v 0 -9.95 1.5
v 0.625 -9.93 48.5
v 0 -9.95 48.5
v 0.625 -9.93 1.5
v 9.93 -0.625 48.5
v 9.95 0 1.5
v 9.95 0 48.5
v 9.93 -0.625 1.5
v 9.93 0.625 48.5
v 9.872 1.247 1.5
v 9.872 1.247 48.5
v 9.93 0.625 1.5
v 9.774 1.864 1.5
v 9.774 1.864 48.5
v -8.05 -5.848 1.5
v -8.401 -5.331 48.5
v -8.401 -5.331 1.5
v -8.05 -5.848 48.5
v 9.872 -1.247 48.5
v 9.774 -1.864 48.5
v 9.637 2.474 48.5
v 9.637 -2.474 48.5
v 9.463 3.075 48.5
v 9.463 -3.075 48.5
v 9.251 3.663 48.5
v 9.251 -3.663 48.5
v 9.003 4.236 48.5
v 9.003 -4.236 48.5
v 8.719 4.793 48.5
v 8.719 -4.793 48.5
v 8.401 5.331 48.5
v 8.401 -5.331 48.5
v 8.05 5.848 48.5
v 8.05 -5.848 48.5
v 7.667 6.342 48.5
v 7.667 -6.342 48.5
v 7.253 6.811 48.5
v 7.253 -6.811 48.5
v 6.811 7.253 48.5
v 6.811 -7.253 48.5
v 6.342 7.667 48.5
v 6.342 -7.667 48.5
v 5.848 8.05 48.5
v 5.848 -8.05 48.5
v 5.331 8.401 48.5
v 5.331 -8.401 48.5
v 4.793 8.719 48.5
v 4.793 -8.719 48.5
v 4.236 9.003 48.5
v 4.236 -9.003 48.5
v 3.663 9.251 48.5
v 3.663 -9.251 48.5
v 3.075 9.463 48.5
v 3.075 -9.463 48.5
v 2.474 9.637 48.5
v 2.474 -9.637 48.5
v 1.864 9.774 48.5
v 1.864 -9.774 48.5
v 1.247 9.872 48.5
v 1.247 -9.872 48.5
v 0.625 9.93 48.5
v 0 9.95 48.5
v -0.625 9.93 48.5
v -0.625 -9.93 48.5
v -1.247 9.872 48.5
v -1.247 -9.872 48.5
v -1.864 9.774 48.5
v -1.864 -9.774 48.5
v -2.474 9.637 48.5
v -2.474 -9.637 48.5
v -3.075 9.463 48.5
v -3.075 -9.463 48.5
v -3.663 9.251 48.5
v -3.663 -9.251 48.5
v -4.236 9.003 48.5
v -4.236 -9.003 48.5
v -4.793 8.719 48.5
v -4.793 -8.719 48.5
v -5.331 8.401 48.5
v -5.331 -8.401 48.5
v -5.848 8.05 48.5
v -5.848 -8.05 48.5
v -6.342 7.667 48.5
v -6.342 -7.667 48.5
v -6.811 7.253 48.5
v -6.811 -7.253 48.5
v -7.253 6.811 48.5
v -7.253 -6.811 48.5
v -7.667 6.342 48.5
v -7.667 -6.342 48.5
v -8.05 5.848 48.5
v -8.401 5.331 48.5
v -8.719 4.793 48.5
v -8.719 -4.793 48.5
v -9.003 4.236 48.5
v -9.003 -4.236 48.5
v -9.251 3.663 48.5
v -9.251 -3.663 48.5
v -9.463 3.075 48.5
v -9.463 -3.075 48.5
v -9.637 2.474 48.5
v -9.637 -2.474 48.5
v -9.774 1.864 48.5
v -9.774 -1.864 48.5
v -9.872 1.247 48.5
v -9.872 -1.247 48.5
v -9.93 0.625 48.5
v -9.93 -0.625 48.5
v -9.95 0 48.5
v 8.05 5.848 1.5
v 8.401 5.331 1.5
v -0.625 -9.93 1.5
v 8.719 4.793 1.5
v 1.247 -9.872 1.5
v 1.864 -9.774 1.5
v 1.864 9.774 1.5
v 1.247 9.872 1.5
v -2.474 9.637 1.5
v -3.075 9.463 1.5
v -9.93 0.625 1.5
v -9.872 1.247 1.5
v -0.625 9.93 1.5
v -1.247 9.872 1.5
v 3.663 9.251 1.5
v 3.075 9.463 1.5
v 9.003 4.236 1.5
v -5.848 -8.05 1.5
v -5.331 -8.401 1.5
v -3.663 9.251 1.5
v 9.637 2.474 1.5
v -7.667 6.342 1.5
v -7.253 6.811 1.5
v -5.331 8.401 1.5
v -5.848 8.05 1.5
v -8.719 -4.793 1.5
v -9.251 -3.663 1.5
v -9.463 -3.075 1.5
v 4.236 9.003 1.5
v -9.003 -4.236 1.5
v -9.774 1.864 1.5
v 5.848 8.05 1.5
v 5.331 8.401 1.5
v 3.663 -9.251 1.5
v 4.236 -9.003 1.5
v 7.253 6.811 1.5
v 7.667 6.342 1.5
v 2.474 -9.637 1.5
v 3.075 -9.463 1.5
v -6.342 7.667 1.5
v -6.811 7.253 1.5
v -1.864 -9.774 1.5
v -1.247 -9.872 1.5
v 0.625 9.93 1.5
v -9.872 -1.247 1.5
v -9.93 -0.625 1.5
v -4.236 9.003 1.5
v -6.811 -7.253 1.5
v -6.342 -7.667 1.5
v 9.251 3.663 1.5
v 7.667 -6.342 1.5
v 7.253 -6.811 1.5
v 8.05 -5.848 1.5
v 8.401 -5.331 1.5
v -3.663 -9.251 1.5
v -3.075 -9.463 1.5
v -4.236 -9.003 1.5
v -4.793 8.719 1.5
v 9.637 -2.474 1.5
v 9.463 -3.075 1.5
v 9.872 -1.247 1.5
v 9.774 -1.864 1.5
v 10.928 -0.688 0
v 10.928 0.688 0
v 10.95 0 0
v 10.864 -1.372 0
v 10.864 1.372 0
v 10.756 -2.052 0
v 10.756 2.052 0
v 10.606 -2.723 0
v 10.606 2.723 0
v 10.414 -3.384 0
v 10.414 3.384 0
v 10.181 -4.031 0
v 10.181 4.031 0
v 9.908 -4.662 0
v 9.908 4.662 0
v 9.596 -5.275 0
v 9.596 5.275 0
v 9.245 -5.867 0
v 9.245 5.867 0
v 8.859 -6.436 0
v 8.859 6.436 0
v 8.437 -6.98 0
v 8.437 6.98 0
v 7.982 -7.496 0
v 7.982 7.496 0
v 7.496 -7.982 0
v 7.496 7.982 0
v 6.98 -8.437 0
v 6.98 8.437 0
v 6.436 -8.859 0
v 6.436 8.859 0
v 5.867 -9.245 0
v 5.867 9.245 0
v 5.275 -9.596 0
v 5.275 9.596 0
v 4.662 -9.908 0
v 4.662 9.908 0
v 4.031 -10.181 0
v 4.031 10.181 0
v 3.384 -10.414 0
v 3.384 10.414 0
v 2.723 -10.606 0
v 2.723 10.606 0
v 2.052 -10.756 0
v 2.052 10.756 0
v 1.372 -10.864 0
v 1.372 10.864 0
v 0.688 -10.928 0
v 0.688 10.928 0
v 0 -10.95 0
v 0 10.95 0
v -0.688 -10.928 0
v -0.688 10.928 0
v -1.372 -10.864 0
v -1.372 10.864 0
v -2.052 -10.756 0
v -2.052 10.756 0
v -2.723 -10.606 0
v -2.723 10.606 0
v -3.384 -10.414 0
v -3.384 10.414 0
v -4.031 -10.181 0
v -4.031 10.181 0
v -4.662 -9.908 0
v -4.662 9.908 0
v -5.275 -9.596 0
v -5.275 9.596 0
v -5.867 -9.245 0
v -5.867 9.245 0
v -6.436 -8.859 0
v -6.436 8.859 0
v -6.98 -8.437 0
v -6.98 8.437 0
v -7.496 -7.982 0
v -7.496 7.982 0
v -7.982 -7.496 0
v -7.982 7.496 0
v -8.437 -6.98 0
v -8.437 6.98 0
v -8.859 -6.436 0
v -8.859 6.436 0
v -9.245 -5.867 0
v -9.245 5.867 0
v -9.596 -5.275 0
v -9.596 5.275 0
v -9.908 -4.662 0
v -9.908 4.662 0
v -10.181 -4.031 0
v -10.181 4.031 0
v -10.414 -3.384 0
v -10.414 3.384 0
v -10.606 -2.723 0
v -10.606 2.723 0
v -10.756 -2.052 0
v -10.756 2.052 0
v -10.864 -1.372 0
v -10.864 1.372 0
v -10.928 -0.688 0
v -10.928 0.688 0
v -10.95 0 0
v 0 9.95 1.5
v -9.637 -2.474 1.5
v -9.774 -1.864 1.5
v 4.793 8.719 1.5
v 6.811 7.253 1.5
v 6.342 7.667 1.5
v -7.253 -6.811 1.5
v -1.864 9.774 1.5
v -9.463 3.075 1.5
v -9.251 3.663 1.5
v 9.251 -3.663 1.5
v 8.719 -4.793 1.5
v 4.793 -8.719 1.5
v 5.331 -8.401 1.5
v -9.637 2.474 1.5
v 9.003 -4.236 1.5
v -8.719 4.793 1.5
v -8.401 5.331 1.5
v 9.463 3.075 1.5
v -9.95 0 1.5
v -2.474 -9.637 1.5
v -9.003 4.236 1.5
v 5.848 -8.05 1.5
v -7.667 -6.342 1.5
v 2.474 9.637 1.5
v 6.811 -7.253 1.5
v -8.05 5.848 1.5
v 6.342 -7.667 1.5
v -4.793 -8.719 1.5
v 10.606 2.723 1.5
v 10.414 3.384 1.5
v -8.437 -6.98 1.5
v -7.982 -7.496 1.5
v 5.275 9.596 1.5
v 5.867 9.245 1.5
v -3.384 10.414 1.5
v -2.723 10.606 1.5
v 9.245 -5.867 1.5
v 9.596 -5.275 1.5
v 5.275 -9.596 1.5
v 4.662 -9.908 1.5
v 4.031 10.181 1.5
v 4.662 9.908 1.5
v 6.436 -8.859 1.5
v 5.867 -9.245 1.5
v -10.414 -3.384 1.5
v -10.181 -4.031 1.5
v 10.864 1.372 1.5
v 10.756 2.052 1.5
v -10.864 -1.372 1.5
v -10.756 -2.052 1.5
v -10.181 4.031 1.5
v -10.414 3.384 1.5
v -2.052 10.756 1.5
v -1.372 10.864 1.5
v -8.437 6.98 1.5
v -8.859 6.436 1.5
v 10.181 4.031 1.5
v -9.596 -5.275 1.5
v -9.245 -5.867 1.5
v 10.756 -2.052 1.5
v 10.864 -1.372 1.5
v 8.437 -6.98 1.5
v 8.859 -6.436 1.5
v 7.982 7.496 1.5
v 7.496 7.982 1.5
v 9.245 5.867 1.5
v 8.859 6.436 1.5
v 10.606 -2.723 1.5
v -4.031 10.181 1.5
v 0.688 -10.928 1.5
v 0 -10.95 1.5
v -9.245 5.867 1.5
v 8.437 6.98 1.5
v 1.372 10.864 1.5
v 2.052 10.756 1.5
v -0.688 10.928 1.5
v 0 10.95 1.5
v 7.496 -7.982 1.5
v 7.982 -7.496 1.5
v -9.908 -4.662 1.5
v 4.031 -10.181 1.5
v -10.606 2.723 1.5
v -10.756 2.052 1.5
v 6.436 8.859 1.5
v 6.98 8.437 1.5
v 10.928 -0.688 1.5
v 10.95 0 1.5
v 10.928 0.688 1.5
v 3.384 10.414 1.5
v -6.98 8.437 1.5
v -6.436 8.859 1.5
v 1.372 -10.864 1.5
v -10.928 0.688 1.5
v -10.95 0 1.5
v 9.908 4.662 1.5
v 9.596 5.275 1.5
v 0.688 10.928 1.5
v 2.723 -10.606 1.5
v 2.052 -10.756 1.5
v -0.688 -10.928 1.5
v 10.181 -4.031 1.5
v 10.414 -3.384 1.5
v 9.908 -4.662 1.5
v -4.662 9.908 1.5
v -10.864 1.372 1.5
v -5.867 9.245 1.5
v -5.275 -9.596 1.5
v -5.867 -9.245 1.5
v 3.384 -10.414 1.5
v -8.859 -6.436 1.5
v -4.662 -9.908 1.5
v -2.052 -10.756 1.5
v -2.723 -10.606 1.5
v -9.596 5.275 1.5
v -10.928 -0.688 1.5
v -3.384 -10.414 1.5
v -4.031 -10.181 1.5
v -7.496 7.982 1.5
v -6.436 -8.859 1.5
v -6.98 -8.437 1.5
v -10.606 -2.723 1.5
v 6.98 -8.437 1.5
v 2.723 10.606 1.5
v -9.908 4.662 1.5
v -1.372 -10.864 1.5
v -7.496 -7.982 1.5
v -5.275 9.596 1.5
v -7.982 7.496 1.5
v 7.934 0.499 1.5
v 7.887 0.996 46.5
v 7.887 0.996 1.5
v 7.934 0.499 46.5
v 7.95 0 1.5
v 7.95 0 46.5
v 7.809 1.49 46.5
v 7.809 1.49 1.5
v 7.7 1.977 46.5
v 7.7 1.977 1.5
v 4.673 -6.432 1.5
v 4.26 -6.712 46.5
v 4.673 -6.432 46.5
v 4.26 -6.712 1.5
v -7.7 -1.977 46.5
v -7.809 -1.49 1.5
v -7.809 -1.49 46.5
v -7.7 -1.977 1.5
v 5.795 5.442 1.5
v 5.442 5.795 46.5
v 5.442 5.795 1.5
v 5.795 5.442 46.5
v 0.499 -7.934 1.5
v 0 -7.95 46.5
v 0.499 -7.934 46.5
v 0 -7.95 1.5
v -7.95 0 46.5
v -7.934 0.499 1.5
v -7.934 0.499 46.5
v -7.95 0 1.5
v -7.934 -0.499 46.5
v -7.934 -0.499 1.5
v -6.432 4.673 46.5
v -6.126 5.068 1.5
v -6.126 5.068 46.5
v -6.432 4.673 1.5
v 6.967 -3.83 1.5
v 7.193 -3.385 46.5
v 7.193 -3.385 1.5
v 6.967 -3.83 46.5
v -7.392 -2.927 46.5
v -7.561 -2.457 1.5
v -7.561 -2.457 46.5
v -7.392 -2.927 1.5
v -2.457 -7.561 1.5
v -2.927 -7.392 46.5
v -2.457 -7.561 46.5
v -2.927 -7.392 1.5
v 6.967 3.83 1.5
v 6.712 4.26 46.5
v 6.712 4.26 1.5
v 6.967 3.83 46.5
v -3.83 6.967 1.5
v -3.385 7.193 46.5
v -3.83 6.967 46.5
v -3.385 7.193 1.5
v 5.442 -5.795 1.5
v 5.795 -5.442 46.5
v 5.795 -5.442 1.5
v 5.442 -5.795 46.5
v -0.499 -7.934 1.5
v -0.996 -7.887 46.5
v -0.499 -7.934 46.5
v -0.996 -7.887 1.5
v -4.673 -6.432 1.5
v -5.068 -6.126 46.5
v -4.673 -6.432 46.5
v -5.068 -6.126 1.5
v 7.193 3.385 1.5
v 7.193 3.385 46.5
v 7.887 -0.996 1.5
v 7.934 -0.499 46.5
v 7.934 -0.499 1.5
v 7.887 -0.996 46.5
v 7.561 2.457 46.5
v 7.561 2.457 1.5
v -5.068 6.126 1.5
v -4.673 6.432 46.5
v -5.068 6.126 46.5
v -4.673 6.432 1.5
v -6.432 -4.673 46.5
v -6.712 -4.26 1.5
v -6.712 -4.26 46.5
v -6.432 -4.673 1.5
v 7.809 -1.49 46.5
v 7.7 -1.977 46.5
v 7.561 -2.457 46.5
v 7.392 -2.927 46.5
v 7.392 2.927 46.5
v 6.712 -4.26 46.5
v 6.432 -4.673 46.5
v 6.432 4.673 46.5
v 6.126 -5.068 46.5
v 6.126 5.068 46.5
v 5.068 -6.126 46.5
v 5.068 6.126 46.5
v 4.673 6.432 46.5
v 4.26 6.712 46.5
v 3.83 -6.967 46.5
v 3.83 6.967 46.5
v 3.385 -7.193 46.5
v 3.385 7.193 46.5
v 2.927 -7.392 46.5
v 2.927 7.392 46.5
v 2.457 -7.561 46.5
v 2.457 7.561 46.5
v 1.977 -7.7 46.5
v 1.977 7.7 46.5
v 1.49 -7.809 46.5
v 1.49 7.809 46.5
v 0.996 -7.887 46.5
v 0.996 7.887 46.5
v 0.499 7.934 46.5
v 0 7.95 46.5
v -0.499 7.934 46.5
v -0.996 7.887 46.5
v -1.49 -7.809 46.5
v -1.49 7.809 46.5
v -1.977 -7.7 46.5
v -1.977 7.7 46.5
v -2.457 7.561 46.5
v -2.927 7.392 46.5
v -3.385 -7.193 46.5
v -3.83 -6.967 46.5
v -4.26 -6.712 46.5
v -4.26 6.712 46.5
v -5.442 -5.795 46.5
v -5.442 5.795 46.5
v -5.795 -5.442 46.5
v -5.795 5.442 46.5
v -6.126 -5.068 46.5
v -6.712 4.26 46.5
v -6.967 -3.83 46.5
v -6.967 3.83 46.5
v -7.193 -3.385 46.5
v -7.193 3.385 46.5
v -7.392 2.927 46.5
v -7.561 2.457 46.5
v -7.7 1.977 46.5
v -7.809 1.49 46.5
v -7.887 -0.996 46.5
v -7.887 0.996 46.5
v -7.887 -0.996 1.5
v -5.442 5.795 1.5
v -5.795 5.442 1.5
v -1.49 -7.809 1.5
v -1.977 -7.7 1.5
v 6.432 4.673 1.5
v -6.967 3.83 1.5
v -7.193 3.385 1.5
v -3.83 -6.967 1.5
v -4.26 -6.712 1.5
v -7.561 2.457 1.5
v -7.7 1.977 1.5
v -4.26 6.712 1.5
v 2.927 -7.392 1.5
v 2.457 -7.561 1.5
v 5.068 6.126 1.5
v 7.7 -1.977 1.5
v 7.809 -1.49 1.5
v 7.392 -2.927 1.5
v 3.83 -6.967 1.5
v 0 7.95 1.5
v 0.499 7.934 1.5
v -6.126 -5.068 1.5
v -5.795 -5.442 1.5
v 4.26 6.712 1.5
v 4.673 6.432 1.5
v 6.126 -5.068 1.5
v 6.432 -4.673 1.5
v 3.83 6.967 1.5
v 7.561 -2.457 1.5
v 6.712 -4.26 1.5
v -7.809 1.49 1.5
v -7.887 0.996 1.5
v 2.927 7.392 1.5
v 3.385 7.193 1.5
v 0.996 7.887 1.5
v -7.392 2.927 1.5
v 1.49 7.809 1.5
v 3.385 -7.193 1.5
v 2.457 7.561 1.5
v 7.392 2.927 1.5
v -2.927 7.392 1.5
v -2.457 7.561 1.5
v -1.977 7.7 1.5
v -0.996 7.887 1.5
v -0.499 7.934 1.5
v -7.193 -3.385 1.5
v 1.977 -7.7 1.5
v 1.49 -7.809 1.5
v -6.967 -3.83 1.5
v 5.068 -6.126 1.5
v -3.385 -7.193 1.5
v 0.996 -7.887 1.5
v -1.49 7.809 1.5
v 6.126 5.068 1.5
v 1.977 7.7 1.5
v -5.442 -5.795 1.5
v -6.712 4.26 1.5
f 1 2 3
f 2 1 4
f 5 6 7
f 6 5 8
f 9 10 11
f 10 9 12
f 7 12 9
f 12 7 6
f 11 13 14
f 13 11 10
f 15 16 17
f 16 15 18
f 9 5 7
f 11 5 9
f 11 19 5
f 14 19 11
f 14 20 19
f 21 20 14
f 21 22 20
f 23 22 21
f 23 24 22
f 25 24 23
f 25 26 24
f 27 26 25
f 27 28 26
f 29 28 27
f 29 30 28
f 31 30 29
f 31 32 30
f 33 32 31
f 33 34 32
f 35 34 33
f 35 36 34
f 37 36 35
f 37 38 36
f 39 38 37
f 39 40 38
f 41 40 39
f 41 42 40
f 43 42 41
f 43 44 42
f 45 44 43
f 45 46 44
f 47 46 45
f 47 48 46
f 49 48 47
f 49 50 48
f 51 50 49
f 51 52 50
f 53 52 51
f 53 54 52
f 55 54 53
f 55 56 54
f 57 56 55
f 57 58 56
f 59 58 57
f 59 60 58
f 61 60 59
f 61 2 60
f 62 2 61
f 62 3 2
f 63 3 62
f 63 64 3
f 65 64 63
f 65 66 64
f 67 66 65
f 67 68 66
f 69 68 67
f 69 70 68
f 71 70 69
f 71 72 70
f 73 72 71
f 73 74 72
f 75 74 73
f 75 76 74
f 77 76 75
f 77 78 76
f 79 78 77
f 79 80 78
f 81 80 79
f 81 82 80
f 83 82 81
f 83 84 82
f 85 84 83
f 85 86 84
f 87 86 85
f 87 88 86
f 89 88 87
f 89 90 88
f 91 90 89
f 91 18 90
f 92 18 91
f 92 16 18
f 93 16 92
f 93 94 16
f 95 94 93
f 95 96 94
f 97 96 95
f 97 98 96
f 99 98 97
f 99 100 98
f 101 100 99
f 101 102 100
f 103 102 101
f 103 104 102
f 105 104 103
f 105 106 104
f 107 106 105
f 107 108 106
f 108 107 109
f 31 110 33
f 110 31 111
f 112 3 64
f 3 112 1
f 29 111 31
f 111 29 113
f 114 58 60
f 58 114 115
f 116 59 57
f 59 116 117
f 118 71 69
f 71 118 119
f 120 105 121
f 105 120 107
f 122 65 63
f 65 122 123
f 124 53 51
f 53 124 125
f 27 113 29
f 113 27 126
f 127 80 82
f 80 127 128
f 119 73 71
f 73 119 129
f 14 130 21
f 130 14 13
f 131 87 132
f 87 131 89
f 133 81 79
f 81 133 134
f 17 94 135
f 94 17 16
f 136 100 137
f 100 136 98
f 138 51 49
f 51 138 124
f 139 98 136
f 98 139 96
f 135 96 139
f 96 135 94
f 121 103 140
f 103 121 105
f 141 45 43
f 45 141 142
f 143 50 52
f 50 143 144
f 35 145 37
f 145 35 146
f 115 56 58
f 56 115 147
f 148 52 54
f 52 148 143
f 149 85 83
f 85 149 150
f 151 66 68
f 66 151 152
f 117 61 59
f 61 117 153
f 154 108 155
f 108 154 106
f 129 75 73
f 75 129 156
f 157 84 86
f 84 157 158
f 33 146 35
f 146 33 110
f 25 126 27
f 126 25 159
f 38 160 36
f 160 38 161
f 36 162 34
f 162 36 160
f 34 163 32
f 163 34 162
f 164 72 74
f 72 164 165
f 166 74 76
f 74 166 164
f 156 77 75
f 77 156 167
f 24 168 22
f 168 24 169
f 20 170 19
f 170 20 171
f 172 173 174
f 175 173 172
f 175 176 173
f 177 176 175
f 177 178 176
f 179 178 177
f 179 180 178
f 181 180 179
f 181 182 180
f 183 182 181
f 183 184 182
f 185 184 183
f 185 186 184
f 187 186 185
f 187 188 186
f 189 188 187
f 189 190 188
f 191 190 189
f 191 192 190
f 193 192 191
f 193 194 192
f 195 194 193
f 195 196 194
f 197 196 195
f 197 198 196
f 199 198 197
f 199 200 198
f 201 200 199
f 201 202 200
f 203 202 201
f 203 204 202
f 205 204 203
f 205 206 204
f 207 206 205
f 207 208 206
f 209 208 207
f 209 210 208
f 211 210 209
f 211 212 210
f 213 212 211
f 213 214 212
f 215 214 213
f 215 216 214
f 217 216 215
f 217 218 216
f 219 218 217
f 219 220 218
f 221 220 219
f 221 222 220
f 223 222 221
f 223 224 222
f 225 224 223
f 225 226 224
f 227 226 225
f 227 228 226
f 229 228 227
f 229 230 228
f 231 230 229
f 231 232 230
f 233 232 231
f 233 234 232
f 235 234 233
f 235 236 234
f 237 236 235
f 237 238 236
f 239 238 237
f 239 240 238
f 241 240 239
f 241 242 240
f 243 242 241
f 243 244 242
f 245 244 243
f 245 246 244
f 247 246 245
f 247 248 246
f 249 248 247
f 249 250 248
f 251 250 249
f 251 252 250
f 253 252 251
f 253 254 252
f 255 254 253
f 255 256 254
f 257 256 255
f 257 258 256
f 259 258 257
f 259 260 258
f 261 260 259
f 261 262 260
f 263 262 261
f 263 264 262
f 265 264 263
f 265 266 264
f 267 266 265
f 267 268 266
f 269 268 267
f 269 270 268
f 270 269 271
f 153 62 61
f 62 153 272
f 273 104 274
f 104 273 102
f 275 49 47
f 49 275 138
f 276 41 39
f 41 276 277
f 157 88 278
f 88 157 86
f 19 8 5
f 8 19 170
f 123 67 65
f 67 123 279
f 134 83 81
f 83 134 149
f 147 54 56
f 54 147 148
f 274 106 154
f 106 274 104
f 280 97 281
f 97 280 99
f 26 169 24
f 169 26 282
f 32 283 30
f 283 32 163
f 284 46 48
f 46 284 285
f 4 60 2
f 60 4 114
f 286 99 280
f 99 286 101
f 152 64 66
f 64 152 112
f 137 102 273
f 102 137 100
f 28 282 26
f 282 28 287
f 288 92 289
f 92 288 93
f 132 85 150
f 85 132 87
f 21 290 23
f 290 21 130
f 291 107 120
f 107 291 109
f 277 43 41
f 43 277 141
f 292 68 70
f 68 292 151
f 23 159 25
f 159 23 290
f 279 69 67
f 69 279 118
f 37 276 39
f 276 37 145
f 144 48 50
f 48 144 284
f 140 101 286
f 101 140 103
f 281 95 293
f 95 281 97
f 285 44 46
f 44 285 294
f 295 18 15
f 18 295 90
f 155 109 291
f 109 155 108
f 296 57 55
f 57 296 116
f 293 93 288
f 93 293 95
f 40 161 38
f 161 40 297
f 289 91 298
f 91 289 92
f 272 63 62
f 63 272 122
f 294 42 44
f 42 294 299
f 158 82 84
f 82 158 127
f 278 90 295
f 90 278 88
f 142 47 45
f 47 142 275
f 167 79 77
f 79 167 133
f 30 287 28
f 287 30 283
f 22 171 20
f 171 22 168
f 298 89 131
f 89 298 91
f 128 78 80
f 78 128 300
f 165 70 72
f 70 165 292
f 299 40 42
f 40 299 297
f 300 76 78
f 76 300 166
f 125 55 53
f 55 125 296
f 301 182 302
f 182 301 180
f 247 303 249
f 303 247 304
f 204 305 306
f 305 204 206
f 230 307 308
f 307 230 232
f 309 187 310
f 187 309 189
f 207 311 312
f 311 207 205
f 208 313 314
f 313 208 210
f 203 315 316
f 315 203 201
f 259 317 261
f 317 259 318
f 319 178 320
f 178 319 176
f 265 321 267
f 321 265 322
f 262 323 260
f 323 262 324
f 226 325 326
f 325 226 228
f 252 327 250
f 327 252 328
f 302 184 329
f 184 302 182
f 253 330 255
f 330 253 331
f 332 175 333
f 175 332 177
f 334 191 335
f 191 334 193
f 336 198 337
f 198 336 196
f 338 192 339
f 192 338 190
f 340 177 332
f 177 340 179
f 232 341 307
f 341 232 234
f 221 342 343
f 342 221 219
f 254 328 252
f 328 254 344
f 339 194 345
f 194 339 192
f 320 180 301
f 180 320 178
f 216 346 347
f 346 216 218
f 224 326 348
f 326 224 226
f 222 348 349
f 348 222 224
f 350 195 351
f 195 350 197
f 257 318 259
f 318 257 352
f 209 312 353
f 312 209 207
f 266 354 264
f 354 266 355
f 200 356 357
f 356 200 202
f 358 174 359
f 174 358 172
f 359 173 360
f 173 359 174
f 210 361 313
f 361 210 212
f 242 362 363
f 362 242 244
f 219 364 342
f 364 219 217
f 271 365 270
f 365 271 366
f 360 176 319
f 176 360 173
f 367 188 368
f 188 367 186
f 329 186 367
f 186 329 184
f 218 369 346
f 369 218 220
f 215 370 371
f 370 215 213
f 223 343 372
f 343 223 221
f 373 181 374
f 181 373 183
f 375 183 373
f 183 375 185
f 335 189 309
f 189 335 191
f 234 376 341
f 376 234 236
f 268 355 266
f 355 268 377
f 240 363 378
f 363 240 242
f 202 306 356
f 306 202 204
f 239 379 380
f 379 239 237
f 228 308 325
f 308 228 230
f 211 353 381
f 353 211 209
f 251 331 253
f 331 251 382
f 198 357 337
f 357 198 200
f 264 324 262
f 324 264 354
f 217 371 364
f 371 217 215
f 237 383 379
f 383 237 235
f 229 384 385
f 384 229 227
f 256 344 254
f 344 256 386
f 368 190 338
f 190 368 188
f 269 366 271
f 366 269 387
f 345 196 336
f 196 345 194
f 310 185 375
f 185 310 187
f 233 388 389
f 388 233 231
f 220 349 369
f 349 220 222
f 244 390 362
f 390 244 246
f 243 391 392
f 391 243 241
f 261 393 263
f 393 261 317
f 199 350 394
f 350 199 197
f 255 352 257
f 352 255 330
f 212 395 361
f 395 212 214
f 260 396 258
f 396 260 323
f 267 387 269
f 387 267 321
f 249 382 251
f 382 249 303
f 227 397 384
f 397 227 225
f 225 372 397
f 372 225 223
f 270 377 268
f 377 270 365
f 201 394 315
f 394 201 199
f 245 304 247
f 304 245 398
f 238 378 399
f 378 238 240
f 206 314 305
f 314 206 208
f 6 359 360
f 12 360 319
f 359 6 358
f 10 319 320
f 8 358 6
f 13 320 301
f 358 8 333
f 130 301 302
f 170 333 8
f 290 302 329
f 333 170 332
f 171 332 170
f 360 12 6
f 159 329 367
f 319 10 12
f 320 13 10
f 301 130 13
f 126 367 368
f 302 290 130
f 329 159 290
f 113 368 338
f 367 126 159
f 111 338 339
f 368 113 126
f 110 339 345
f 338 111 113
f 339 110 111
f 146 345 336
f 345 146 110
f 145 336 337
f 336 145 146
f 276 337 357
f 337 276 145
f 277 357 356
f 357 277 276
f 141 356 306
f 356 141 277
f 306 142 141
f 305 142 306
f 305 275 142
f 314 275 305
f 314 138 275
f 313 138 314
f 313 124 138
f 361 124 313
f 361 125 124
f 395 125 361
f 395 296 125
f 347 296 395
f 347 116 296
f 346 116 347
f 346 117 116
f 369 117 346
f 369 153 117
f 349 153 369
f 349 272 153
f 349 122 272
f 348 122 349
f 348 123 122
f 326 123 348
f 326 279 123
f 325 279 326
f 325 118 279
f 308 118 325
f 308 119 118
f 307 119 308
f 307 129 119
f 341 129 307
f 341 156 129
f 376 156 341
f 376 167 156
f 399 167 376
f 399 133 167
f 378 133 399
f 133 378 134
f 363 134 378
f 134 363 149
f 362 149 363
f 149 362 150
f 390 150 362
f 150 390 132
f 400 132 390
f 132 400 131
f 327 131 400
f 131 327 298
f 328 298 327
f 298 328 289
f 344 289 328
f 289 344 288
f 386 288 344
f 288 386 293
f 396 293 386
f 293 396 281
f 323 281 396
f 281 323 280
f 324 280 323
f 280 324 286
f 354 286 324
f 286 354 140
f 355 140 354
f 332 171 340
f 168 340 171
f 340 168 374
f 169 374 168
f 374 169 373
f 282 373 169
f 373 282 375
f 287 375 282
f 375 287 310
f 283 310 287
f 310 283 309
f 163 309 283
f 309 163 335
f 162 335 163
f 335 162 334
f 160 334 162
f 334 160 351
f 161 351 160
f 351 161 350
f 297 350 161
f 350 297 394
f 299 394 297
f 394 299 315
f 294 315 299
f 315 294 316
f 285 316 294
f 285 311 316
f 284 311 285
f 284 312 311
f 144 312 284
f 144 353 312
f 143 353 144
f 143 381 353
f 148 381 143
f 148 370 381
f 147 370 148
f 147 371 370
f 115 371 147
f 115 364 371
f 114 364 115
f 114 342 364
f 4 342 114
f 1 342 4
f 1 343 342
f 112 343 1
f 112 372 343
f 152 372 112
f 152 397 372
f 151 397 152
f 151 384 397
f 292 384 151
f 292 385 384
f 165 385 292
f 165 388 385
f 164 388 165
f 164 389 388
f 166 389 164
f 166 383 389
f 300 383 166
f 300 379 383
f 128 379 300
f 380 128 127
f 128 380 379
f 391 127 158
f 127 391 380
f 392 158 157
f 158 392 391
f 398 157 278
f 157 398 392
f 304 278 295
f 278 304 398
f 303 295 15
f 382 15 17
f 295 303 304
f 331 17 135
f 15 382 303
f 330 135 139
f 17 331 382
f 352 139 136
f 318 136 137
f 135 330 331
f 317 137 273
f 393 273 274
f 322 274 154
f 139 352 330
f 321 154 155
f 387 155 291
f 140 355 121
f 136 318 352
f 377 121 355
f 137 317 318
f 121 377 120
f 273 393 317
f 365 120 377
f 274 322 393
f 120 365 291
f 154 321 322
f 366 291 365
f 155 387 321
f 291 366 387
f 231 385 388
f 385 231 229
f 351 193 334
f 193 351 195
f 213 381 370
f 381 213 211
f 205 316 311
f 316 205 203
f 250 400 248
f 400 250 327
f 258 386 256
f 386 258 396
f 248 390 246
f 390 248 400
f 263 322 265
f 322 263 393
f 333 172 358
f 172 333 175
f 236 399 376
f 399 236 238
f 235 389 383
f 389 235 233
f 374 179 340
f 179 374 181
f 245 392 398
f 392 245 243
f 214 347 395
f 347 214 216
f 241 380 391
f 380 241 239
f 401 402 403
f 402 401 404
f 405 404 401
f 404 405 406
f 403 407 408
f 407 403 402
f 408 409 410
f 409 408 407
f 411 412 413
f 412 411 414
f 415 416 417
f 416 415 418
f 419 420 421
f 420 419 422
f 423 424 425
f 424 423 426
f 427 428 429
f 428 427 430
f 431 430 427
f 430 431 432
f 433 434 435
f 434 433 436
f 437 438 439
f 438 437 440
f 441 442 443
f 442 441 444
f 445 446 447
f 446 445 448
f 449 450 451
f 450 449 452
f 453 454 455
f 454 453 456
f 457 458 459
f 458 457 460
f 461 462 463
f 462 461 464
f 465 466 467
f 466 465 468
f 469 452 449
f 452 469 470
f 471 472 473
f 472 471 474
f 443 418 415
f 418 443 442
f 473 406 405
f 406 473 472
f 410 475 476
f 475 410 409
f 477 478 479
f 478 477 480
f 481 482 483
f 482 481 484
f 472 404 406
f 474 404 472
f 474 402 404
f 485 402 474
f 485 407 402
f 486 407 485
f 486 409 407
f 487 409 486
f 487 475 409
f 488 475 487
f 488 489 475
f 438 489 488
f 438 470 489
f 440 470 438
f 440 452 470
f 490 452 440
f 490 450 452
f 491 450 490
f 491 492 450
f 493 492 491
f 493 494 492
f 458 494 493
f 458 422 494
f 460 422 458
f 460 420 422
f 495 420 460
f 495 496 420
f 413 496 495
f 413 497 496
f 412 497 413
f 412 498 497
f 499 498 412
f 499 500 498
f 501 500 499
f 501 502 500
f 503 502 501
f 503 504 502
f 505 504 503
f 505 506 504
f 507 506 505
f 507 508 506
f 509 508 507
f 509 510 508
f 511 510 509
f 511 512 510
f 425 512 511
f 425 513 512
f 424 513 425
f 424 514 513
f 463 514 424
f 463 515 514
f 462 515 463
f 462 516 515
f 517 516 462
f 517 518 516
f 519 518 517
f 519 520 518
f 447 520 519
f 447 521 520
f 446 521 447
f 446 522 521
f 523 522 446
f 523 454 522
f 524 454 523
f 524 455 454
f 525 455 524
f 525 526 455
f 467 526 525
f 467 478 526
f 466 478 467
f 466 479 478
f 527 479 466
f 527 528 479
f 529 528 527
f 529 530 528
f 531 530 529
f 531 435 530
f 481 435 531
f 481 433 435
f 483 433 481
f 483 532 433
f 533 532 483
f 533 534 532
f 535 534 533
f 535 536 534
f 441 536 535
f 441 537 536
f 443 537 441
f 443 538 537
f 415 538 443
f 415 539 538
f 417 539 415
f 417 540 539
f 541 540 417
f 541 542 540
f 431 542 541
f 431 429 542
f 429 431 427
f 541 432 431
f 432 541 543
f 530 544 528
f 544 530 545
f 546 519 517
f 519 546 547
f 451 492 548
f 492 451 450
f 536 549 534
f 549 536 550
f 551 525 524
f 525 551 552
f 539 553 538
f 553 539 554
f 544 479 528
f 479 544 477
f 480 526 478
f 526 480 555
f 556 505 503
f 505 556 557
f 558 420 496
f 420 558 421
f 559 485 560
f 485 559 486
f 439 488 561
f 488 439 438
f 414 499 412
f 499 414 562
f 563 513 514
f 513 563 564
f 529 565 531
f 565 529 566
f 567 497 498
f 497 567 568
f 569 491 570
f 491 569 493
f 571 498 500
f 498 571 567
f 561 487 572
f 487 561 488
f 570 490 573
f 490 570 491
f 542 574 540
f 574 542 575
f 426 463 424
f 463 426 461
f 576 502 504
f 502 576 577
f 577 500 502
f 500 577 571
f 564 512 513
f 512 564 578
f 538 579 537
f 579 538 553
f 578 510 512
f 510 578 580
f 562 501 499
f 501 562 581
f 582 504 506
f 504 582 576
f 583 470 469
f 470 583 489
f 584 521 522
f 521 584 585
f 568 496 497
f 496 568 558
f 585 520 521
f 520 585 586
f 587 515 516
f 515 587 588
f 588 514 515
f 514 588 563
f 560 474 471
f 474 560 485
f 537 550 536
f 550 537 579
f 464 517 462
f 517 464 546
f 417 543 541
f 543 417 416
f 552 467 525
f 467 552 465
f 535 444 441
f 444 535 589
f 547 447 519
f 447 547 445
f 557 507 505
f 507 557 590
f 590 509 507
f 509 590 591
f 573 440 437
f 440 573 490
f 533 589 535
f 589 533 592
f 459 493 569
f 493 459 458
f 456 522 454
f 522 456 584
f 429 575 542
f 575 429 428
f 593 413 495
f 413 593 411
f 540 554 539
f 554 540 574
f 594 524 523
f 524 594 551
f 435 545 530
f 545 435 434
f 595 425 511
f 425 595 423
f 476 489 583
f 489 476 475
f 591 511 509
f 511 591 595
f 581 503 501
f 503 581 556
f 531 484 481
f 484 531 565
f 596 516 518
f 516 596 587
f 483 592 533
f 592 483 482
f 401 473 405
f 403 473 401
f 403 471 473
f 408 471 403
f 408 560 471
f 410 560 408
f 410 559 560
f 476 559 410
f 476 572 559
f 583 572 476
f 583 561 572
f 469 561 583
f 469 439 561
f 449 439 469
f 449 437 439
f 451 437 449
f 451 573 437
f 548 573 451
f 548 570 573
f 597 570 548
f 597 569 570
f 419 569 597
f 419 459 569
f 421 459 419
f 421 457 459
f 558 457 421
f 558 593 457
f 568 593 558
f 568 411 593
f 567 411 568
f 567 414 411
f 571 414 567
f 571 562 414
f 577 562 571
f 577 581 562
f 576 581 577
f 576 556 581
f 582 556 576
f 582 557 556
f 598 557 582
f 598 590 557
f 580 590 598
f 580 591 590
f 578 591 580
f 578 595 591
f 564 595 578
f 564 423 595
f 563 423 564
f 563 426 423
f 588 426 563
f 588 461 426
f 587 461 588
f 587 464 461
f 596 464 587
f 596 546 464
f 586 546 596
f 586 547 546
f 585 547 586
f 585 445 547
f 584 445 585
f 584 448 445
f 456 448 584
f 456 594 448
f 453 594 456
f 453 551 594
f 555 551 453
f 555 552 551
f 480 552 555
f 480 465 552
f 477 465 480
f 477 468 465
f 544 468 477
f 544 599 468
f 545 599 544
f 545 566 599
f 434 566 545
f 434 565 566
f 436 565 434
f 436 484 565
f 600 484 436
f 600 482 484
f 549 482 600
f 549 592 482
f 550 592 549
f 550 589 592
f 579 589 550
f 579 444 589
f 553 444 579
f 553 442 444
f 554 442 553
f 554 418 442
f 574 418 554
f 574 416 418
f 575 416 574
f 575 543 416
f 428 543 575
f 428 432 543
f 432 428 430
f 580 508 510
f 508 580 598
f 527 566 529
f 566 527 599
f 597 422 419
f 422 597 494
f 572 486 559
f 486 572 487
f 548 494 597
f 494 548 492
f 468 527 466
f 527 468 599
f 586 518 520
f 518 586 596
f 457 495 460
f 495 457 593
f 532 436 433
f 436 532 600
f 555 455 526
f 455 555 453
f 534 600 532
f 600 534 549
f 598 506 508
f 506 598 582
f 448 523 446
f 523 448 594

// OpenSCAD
$fn=100;

diameter = 19.9;
height = 28+19;

wallThickness = 2;
lidThickness = 2;

stopThickness = 1.5;
stopDiameter = diameter+2;


difference() {
union(){
cylinder(
    h = height+stopThickness, 
    r = diameter/2);

cylinder(
    h = stopThickness, 
    r = stopDiameter/2);
}

union() {
translate([0,0,stopThickness])    
cylinder(
    h = height-lidThickness, 
    r = diameter/2-wallThickness);
}}
